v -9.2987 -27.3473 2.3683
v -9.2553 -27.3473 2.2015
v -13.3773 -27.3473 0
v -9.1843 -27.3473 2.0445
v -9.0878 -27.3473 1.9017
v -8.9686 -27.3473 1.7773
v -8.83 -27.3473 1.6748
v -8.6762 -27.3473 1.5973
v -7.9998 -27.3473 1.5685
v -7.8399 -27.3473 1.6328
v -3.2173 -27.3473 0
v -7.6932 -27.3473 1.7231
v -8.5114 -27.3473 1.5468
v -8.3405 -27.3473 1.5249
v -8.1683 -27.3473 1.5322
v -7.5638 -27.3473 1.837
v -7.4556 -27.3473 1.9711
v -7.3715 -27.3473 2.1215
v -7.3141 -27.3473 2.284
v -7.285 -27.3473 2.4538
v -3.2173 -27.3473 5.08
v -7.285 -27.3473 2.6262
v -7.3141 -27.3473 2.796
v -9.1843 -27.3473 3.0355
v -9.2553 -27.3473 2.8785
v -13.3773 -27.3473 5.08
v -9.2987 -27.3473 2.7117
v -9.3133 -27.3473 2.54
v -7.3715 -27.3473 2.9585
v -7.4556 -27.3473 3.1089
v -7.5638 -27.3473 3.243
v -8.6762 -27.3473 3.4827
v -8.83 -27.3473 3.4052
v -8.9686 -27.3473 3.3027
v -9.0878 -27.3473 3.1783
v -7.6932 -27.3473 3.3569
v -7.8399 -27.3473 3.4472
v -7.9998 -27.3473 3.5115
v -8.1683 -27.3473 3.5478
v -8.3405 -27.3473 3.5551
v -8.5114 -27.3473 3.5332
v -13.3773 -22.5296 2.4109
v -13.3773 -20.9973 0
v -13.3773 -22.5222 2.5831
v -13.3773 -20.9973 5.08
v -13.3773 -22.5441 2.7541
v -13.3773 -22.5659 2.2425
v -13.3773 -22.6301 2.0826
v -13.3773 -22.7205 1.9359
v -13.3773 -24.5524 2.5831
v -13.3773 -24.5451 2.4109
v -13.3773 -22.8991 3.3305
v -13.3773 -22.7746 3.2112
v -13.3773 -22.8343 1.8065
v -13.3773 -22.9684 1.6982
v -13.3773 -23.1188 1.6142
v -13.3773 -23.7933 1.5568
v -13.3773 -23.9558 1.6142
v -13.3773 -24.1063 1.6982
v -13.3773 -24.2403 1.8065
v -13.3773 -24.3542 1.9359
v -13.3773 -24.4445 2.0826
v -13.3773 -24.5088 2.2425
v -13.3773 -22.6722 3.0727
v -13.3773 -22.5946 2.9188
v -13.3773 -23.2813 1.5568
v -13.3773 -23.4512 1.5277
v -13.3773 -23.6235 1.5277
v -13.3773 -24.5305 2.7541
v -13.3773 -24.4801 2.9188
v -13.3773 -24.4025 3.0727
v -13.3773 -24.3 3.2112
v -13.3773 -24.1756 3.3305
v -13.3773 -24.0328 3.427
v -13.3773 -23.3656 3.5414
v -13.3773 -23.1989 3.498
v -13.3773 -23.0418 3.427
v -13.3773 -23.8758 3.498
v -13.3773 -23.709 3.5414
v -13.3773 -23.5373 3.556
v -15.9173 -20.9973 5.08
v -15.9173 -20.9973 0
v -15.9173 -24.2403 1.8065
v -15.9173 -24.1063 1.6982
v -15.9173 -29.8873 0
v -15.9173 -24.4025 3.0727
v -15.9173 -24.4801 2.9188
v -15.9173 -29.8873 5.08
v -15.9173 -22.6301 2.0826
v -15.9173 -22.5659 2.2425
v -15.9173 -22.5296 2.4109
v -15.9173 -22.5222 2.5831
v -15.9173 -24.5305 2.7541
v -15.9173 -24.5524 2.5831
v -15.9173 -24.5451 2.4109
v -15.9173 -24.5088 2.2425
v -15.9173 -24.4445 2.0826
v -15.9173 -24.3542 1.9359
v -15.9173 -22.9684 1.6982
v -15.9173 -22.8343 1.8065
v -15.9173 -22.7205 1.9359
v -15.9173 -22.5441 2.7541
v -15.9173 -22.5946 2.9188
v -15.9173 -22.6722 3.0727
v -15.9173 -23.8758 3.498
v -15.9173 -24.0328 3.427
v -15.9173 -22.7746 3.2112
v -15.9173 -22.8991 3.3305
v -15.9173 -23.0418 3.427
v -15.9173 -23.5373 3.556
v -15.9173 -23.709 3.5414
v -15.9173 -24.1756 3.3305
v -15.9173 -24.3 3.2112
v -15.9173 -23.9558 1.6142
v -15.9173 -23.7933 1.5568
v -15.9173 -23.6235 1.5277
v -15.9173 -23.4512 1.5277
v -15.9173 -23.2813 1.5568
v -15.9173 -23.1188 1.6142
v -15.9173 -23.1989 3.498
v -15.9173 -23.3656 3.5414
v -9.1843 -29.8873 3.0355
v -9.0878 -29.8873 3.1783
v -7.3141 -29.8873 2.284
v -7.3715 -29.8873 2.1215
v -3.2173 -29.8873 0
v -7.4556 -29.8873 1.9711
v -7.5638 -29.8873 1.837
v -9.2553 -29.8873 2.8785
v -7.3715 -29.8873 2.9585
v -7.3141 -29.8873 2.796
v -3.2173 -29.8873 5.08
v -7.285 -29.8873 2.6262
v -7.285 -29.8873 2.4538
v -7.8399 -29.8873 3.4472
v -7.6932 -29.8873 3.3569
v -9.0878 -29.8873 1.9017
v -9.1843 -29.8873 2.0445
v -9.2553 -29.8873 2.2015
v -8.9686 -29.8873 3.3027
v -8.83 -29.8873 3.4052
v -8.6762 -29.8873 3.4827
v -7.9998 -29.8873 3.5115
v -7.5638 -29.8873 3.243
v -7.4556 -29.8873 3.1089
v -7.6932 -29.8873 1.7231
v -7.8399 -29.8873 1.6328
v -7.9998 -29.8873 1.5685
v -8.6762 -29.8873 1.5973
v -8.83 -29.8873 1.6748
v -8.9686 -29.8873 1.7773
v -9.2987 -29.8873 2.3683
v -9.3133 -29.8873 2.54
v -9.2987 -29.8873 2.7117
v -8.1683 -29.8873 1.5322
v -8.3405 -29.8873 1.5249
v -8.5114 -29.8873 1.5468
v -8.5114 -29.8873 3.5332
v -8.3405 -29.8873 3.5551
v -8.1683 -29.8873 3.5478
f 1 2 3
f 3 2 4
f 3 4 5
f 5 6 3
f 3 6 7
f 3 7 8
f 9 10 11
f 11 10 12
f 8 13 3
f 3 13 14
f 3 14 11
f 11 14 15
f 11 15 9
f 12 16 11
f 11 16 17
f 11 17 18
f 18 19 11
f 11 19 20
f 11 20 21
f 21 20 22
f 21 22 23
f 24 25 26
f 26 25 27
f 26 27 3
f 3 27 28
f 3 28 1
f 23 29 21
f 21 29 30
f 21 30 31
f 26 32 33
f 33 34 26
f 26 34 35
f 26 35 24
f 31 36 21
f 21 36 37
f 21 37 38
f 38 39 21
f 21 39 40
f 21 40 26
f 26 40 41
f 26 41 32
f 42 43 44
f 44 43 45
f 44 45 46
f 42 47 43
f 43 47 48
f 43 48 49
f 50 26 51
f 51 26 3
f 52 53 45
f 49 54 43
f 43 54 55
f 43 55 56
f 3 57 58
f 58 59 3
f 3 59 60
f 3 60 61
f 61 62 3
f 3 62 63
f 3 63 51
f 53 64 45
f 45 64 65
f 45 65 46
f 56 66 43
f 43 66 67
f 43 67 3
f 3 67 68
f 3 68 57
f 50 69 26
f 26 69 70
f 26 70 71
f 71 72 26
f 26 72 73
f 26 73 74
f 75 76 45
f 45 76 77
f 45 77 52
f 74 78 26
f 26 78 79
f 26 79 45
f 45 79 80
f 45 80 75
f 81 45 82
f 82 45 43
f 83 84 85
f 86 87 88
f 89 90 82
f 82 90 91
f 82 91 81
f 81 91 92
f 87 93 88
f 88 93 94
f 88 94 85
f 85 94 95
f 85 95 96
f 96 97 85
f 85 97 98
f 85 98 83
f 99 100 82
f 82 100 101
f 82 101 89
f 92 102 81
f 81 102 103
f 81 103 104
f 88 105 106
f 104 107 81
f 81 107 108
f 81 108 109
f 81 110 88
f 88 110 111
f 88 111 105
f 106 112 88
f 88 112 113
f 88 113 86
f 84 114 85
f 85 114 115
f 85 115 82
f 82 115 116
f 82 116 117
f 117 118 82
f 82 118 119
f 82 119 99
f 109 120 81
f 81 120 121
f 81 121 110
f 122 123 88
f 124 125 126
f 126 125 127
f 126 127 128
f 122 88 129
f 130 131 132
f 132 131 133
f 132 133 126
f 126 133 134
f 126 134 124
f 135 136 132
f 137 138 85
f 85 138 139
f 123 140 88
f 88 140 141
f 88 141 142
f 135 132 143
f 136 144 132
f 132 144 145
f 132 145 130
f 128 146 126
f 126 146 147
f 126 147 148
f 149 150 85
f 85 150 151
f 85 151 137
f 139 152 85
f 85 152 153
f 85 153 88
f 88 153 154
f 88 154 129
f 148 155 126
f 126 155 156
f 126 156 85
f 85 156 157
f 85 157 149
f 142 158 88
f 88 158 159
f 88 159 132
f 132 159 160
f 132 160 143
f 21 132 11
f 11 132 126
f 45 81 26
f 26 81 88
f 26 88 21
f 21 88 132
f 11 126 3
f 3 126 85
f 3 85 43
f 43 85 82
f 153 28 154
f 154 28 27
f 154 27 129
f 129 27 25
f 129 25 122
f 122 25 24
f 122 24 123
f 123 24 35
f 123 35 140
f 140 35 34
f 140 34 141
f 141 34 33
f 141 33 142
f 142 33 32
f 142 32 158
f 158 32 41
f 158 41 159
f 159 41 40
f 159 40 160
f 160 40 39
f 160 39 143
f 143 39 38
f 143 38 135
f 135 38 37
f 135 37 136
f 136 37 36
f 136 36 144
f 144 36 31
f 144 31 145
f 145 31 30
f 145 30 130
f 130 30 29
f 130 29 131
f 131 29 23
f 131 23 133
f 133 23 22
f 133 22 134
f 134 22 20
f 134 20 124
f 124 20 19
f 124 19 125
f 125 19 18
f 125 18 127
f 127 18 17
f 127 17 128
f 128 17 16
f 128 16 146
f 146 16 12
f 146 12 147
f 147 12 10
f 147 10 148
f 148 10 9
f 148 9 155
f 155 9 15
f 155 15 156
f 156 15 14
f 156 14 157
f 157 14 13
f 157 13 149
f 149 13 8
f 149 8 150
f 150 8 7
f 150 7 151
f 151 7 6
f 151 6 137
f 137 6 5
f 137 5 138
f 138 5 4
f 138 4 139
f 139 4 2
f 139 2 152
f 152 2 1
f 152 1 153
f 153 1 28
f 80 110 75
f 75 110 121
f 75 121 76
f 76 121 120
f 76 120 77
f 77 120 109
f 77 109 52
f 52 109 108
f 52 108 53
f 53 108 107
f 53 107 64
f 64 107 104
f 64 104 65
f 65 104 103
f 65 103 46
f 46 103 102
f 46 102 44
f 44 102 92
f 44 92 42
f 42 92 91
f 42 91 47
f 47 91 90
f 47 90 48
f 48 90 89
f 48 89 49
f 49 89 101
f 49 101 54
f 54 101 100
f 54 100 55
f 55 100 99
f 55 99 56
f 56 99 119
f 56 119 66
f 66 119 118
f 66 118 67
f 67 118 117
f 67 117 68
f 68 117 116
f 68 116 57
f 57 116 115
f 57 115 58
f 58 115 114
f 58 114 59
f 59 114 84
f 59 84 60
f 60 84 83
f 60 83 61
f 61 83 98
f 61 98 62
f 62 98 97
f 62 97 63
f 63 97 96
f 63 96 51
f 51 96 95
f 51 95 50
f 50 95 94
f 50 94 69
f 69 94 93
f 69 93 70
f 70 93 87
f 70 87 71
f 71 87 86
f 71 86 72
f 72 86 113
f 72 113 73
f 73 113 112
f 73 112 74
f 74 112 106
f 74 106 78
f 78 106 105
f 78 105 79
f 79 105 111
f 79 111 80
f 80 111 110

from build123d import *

# Parameters (mm, degrees)
BOSS_EXTRUDE2_DEPTH = 5.08
SKETCH3_R           = 1.016
CUT_EXTRUDE1_DEPTH  = 25.4
SKETCH4_R           = 1.016
CUT_EXTRUDE2_DEPTH  = 2.54


with BuildPart() as part:
    # Sketch1 → Boss-Extrude2 (new body)
    with BuildSketch(Plane.XY):
        Polygon((-15.917333333, -20.997333333), (-15.917333333, -29.887333333), (-3.217333333, -29.887333333), (-3.217333333, -27.347333333), (-13.377333333, -27.347333333), (-13.377333333, -20.997333333), align=None)
    extrude(amount=BOSS_EXTRUDE2_DEPTH)

    # Sketch3 → Cut-Extrude1 (cut)
    with BuildSketch(Plane(origin=(0, -27.347333333, 0), x_dir=(1, 0, 0), z_dir=(0, 1, 0))):
        with Locations((-8.297333333, -2.54)):
            Circle(SKETCH3_R)
    extrude(amount=-CUT_EXTRUDE1_DEPTH, mode=Mode.SUBTRACT)

    # Sketch4 → Cut-Extrude2 (cut)
    with BuildSketch(Plane.ZY.offset(15.917333333)):
        with Locations((2.54, -23.537333333)):
            Circle(SKETCH4_R)
    extrude(amount=-CUT_EXTRUDE2_DEPTH, mode=Mode.SUBTRACT)


solid = part.part
